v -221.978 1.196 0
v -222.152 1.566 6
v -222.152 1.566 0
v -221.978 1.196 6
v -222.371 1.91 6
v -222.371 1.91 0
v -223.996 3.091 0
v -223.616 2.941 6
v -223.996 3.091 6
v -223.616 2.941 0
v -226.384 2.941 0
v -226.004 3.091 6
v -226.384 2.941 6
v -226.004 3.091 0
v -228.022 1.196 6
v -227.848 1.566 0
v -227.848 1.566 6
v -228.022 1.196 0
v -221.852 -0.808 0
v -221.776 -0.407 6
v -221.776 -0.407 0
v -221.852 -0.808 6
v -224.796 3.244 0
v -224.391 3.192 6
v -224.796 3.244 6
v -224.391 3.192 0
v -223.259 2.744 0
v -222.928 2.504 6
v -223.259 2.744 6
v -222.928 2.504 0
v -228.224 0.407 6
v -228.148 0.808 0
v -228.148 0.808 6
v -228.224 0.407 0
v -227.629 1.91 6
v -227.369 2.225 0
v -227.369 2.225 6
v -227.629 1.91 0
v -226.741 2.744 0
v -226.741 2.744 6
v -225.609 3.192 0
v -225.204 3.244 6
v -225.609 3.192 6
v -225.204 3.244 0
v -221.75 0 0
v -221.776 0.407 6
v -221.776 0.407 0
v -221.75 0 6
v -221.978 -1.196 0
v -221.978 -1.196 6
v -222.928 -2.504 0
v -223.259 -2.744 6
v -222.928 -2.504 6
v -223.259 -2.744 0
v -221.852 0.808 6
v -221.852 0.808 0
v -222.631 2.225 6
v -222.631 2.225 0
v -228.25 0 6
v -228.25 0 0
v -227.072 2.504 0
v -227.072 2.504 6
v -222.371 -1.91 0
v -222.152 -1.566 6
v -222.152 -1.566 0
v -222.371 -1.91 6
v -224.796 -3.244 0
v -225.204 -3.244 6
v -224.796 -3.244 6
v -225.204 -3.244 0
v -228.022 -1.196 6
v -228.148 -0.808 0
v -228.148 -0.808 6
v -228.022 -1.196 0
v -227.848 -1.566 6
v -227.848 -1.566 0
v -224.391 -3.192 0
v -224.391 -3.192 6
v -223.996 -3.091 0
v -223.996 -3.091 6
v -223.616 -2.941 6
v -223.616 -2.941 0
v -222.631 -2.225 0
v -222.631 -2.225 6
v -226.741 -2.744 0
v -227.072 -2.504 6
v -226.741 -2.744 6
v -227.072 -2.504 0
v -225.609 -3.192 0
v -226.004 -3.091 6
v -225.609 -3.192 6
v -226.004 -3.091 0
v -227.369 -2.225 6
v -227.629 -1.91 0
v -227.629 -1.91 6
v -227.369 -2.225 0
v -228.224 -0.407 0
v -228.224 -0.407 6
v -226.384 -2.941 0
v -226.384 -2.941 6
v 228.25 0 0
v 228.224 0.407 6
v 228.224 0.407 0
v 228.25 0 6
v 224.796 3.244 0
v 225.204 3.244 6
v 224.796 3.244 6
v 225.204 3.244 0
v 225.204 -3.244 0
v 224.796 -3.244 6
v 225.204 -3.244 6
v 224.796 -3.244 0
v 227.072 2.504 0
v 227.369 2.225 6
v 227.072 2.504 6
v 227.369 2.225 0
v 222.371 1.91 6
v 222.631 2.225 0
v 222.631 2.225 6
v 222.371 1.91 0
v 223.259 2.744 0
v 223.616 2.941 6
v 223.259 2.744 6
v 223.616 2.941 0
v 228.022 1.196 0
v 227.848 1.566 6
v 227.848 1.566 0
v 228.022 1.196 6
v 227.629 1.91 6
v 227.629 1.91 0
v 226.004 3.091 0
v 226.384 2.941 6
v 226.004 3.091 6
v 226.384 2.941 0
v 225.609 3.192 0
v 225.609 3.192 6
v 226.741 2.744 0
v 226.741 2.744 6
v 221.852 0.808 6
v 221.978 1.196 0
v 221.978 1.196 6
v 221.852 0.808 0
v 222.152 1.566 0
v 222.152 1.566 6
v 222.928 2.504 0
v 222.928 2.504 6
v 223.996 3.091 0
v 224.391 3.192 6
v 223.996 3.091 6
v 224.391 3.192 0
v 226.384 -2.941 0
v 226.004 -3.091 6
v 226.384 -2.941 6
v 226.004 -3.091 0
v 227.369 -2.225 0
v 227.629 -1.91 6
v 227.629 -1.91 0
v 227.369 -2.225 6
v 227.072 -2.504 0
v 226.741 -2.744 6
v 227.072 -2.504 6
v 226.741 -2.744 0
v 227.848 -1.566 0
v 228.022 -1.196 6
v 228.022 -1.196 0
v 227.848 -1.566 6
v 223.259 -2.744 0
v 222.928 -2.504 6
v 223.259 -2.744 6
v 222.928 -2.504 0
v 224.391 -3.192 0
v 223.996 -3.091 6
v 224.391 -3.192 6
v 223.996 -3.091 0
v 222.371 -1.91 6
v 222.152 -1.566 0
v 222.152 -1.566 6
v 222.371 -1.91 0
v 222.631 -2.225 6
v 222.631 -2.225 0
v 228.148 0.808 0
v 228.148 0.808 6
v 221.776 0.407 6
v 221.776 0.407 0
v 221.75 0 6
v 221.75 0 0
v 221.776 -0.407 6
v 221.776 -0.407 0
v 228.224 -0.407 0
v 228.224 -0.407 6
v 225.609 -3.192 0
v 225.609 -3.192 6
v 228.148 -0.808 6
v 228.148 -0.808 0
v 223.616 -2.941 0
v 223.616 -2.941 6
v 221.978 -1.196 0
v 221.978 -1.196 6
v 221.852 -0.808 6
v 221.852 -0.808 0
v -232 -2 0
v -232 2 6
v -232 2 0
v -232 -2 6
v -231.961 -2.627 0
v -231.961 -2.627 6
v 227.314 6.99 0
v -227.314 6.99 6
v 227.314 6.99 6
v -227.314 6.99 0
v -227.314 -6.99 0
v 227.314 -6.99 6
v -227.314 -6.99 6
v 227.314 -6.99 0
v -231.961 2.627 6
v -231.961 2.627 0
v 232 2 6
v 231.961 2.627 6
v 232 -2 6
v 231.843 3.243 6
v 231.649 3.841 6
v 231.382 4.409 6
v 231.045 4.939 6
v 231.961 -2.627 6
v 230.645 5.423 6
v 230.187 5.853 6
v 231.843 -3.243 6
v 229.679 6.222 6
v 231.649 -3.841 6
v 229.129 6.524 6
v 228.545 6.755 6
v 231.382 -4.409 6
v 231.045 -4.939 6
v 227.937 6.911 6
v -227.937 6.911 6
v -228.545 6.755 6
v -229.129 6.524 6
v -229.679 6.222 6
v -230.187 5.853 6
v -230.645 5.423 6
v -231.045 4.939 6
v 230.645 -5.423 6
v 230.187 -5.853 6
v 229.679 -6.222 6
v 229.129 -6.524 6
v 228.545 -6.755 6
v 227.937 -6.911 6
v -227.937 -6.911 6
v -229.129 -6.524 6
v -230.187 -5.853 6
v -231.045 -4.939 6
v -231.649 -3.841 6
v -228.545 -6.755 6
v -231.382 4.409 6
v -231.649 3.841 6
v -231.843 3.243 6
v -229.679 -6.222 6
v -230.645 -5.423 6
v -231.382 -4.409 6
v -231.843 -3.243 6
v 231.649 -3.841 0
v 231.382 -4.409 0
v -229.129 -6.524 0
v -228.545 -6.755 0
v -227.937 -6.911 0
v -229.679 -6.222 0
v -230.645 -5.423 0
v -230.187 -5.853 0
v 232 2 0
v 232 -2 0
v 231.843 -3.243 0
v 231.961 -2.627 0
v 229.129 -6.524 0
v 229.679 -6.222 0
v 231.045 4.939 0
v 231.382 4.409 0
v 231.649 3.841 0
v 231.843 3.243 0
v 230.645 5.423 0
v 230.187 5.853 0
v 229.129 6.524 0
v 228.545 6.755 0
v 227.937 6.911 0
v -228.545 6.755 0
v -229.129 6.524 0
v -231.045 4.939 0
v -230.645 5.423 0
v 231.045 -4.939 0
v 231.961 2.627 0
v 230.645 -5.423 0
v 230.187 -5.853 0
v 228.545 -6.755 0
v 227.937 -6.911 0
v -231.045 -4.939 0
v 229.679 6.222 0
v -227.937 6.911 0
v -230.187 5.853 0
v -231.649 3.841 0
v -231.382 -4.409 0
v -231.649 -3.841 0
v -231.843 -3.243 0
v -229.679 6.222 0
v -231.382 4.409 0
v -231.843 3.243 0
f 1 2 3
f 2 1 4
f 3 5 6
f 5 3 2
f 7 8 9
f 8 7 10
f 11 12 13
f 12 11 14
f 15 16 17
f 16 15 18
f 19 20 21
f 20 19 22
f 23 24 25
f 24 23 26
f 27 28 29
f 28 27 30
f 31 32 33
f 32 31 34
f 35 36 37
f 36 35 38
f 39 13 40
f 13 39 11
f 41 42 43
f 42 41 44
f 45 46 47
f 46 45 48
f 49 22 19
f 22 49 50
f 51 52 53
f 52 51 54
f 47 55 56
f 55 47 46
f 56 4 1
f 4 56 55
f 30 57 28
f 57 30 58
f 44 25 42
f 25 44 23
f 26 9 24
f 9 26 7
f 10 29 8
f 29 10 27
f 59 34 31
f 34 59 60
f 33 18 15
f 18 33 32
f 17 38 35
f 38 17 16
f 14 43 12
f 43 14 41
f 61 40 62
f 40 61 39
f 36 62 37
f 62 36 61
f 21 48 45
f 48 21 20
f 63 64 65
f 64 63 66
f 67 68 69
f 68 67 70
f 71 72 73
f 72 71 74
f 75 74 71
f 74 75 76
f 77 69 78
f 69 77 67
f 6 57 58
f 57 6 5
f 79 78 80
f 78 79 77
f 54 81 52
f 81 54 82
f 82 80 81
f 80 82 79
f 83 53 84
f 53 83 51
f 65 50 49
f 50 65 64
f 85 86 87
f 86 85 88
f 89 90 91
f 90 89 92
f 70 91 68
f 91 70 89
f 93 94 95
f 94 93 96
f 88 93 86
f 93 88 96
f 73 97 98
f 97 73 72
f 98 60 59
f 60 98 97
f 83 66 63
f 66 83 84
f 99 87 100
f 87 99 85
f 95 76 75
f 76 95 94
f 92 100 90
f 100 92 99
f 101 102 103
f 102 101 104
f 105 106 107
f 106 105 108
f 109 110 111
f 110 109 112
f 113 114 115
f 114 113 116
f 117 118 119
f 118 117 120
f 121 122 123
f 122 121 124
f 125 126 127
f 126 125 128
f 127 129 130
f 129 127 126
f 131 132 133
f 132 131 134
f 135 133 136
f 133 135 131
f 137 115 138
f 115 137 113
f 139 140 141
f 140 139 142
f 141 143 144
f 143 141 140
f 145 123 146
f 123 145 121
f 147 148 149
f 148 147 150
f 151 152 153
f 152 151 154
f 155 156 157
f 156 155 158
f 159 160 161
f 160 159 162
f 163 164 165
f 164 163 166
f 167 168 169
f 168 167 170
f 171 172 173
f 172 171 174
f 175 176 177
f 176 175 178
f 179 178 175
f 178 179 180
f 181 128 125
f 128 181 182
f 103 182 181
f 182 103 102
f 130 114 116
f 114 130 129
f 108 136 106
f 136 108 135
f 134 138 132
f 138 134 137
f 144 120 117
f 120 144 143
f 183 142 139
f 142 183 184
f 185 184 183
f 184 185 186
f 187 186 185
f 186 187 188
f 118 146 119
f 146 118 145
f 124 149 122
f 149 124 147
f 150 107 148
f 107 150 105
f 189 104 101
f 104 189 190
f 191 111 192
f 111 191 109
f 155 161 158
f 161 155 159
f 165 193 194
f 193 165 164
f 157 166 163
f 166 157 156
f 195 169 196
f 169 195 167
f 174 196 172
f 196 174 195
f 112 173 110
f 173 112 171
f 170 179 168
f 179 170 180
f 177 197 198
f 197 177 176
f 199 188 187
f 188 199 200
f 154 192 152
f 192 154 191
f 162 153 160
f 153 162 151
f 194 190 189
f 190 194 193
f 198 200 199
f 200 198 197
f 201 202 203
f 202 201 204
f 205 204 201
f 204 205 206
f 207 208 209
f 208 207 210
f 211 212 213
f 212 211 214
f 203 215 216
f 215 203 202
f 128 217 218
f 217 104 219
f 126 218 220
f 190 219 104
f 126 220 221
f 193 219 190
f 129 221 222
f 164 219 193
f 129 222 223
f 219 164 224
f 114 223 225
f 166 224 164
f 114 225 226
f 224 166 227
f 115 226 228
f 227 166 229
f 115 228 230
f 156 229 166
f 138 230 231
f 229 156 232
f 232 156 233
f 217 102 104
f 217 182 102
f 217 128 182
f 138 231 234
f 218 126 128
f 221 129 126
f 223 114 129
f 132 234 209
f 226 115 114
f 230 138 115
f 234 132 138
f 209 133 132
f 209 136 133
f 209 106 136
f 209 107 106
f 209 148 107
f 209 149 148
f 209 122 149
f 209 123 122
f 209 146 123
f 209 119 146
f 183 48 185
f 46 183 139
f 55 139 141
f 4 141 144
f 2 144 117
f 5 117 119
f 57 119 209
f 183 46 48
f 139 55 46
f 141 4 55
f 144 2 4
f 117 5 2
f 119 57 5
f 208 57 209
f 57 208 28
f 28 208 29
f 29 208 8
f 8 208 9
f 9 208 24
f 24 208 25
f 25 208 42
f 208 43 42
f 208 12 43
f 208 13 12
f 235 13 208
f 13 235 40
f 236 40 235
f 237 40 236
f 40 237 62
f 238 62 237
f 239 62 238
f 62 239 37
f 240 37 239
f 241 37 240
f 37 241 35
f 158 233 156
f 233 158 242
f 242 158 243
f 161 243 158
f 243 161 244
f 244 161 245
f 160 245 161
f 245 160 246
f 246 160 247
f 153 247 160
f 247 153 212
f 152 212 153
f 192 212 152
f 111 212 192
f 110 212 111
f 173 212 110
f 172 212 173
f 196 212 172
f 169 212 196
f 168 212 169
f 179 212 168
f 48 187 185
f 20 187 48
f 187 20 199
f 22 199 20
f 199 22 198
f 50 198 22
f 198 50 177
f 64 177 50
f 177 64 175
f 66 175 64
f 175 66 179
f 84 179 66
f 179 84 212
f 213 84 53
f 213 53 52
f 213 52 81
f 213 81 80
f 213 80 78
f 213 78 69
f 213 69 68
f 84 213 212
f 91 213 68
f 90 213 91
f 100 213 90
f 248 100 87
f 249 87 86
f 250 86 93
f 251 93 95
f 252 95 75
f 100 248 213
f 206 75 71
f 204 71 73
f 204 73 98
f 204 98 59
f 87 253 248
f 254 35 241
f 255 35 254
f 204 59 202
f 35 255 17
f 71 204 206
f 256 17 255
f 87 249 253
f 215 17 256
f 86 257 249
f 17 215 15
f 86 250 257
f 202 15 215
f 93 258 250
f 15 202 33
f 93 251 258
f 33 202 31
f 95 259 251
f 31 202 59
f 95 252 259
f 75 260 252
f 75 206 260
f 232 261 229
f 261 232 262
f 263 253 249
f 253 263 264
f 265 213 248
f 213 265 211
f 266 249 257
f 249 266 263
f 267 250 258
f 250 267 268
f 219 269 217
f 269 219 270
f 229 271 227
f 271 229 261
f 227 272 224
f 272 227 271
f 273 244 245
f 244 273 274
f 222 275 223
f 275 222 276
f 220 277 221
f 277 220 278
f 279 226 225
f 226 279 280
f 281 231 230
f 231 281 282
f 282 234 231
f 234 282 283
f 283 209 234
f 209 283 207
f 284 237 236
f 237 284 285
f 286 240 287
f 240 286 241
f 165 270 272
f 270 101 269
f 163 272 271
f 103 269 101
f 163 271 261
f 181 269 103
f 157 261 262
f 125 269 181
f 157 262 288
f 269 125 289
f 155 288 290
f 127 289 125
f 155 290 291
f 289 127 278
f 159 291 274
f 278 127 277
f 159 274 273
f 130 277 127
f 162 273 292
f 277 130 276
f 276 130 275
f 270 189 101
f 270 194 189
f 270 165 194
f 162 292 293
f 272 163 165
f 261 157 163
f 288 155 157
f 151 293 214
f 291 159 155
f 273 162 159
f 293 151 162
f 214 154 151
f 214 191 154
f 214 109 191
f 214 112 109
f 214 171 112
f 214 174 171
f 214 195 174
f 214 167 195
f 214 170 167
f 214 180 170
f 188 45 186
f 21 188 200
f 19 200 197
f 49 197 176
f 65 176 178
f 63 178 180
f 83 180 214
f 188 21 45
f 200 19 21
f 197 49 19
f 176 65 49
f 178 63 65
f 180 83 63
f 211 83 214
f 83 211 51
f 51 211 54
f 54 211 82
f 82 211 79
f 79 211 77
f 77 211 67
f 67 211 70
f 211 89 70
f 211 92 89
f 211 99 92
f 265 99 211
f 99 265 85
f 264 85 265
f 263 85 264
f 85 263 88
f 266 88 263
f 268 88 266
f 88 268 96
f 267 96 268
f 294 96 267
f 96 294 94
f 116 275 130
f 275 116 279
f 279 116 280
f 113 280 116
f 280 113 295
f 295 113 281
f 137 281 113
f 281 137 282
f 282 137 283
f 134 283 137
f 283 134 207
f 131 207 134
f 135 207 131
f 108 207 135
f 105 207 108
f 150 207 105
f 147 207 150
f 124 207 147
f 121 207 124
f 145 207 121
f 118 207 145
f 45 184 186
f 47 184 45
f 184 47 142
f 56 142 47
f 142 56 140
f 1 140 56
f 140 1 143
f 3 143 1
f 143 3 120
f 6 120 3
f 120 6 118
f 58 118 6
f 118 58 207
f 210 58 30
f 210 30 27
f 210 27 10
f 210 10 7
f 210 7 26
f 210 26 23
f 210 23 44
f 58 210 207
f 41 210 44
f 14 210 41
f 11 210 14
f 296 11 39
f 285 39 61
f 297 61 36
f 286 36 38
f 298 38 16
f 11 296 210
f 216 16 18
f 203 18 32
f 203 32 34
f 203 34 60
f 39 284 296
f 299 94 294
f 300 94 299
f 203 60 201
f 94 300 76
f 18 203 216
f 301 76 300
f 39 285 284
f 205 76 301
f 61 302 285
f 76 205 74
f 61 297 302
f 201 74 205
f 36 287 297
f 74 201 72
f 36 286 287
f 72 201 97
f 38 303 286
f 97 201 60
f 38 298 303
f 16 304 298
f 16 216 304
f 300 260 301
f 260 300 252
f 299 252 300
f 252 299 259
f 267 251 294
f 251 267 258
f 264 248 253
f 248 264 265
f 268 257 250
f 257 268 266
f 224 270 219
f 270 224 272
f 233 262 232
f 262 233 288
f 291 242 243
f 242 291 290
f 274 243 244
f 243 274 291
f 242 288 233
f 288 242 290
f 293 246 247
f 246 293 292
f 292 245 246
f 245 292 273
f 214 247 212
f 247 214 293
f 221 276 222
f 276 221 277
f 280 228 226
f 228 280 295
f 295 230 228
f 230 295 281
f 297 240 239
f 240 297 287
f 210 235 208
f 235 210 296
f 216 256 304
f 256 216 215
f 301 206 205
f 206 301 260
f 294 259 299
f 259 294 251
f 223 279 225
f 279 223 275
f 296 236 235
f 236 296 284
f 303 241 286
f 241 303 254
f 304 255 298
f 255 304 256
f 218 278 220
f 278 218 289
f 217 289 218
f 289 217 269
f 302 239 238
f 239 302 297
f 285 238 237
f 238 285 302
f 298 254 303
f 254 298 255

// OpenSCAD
$fn = 50;


difference() {
	union() {
		hull() {
			translate(v = [-227.0000000000, 2.0000000000, 0]) {
				cylinder(h = 6, r = 5);
			}
			translate(v = [227.0000000000, 2.0000000000, 0]) {
				cylinder(h = 6, r = 5);
			}
			translate(v = [-227.0000000000, -2.0000000000, 0]) {
				cylinder(h = 6, r = 5);
			}
			translate(v = [227.0000000000, -2.0000000000, 0]) {
				cylinder(h = 6, r = 5);
			}
		}
	}
	union() {
		translate(v = [-225.0000000000, 0.0000000000, 0]) {
			cylinder(h = 6, r = 3.2500000000);
		}
		translate(v = [225.0000000000, 0.0000000000, 0]) {
			cylinder(h = 6, r = 3.2500000000);
		}
		translate(v = [-225.0000000000, 0.0000000000, 0]) {
			cylinder(h = 6, r = 1.8000000000);
		}
		translate(v = [225.0000000000, 0.0000000000, 0]) {
			cylinder(h = 6, r = 1.8000000000);
		}
		translate(v = [-225.0000000000, 0.0000000000, 0]) {
			cylinder(h = 6, r = 1.8000000000);
		}
		translate(v = [225.0000000000, 0.0000000000, 0]) {
			cylinder(h = 6, r = 1.8000000000);
		}
		translate(v = [-225.0000000000, 0.0000000000, 0]) {
			cylinder(h = 6, r = 1.8000000000);
		}
		translate(v = [225.0000000000, 0.0000000000, 0]) {
			cylinder(h = 6, r = 1.8000000000);
		}
	}
}
